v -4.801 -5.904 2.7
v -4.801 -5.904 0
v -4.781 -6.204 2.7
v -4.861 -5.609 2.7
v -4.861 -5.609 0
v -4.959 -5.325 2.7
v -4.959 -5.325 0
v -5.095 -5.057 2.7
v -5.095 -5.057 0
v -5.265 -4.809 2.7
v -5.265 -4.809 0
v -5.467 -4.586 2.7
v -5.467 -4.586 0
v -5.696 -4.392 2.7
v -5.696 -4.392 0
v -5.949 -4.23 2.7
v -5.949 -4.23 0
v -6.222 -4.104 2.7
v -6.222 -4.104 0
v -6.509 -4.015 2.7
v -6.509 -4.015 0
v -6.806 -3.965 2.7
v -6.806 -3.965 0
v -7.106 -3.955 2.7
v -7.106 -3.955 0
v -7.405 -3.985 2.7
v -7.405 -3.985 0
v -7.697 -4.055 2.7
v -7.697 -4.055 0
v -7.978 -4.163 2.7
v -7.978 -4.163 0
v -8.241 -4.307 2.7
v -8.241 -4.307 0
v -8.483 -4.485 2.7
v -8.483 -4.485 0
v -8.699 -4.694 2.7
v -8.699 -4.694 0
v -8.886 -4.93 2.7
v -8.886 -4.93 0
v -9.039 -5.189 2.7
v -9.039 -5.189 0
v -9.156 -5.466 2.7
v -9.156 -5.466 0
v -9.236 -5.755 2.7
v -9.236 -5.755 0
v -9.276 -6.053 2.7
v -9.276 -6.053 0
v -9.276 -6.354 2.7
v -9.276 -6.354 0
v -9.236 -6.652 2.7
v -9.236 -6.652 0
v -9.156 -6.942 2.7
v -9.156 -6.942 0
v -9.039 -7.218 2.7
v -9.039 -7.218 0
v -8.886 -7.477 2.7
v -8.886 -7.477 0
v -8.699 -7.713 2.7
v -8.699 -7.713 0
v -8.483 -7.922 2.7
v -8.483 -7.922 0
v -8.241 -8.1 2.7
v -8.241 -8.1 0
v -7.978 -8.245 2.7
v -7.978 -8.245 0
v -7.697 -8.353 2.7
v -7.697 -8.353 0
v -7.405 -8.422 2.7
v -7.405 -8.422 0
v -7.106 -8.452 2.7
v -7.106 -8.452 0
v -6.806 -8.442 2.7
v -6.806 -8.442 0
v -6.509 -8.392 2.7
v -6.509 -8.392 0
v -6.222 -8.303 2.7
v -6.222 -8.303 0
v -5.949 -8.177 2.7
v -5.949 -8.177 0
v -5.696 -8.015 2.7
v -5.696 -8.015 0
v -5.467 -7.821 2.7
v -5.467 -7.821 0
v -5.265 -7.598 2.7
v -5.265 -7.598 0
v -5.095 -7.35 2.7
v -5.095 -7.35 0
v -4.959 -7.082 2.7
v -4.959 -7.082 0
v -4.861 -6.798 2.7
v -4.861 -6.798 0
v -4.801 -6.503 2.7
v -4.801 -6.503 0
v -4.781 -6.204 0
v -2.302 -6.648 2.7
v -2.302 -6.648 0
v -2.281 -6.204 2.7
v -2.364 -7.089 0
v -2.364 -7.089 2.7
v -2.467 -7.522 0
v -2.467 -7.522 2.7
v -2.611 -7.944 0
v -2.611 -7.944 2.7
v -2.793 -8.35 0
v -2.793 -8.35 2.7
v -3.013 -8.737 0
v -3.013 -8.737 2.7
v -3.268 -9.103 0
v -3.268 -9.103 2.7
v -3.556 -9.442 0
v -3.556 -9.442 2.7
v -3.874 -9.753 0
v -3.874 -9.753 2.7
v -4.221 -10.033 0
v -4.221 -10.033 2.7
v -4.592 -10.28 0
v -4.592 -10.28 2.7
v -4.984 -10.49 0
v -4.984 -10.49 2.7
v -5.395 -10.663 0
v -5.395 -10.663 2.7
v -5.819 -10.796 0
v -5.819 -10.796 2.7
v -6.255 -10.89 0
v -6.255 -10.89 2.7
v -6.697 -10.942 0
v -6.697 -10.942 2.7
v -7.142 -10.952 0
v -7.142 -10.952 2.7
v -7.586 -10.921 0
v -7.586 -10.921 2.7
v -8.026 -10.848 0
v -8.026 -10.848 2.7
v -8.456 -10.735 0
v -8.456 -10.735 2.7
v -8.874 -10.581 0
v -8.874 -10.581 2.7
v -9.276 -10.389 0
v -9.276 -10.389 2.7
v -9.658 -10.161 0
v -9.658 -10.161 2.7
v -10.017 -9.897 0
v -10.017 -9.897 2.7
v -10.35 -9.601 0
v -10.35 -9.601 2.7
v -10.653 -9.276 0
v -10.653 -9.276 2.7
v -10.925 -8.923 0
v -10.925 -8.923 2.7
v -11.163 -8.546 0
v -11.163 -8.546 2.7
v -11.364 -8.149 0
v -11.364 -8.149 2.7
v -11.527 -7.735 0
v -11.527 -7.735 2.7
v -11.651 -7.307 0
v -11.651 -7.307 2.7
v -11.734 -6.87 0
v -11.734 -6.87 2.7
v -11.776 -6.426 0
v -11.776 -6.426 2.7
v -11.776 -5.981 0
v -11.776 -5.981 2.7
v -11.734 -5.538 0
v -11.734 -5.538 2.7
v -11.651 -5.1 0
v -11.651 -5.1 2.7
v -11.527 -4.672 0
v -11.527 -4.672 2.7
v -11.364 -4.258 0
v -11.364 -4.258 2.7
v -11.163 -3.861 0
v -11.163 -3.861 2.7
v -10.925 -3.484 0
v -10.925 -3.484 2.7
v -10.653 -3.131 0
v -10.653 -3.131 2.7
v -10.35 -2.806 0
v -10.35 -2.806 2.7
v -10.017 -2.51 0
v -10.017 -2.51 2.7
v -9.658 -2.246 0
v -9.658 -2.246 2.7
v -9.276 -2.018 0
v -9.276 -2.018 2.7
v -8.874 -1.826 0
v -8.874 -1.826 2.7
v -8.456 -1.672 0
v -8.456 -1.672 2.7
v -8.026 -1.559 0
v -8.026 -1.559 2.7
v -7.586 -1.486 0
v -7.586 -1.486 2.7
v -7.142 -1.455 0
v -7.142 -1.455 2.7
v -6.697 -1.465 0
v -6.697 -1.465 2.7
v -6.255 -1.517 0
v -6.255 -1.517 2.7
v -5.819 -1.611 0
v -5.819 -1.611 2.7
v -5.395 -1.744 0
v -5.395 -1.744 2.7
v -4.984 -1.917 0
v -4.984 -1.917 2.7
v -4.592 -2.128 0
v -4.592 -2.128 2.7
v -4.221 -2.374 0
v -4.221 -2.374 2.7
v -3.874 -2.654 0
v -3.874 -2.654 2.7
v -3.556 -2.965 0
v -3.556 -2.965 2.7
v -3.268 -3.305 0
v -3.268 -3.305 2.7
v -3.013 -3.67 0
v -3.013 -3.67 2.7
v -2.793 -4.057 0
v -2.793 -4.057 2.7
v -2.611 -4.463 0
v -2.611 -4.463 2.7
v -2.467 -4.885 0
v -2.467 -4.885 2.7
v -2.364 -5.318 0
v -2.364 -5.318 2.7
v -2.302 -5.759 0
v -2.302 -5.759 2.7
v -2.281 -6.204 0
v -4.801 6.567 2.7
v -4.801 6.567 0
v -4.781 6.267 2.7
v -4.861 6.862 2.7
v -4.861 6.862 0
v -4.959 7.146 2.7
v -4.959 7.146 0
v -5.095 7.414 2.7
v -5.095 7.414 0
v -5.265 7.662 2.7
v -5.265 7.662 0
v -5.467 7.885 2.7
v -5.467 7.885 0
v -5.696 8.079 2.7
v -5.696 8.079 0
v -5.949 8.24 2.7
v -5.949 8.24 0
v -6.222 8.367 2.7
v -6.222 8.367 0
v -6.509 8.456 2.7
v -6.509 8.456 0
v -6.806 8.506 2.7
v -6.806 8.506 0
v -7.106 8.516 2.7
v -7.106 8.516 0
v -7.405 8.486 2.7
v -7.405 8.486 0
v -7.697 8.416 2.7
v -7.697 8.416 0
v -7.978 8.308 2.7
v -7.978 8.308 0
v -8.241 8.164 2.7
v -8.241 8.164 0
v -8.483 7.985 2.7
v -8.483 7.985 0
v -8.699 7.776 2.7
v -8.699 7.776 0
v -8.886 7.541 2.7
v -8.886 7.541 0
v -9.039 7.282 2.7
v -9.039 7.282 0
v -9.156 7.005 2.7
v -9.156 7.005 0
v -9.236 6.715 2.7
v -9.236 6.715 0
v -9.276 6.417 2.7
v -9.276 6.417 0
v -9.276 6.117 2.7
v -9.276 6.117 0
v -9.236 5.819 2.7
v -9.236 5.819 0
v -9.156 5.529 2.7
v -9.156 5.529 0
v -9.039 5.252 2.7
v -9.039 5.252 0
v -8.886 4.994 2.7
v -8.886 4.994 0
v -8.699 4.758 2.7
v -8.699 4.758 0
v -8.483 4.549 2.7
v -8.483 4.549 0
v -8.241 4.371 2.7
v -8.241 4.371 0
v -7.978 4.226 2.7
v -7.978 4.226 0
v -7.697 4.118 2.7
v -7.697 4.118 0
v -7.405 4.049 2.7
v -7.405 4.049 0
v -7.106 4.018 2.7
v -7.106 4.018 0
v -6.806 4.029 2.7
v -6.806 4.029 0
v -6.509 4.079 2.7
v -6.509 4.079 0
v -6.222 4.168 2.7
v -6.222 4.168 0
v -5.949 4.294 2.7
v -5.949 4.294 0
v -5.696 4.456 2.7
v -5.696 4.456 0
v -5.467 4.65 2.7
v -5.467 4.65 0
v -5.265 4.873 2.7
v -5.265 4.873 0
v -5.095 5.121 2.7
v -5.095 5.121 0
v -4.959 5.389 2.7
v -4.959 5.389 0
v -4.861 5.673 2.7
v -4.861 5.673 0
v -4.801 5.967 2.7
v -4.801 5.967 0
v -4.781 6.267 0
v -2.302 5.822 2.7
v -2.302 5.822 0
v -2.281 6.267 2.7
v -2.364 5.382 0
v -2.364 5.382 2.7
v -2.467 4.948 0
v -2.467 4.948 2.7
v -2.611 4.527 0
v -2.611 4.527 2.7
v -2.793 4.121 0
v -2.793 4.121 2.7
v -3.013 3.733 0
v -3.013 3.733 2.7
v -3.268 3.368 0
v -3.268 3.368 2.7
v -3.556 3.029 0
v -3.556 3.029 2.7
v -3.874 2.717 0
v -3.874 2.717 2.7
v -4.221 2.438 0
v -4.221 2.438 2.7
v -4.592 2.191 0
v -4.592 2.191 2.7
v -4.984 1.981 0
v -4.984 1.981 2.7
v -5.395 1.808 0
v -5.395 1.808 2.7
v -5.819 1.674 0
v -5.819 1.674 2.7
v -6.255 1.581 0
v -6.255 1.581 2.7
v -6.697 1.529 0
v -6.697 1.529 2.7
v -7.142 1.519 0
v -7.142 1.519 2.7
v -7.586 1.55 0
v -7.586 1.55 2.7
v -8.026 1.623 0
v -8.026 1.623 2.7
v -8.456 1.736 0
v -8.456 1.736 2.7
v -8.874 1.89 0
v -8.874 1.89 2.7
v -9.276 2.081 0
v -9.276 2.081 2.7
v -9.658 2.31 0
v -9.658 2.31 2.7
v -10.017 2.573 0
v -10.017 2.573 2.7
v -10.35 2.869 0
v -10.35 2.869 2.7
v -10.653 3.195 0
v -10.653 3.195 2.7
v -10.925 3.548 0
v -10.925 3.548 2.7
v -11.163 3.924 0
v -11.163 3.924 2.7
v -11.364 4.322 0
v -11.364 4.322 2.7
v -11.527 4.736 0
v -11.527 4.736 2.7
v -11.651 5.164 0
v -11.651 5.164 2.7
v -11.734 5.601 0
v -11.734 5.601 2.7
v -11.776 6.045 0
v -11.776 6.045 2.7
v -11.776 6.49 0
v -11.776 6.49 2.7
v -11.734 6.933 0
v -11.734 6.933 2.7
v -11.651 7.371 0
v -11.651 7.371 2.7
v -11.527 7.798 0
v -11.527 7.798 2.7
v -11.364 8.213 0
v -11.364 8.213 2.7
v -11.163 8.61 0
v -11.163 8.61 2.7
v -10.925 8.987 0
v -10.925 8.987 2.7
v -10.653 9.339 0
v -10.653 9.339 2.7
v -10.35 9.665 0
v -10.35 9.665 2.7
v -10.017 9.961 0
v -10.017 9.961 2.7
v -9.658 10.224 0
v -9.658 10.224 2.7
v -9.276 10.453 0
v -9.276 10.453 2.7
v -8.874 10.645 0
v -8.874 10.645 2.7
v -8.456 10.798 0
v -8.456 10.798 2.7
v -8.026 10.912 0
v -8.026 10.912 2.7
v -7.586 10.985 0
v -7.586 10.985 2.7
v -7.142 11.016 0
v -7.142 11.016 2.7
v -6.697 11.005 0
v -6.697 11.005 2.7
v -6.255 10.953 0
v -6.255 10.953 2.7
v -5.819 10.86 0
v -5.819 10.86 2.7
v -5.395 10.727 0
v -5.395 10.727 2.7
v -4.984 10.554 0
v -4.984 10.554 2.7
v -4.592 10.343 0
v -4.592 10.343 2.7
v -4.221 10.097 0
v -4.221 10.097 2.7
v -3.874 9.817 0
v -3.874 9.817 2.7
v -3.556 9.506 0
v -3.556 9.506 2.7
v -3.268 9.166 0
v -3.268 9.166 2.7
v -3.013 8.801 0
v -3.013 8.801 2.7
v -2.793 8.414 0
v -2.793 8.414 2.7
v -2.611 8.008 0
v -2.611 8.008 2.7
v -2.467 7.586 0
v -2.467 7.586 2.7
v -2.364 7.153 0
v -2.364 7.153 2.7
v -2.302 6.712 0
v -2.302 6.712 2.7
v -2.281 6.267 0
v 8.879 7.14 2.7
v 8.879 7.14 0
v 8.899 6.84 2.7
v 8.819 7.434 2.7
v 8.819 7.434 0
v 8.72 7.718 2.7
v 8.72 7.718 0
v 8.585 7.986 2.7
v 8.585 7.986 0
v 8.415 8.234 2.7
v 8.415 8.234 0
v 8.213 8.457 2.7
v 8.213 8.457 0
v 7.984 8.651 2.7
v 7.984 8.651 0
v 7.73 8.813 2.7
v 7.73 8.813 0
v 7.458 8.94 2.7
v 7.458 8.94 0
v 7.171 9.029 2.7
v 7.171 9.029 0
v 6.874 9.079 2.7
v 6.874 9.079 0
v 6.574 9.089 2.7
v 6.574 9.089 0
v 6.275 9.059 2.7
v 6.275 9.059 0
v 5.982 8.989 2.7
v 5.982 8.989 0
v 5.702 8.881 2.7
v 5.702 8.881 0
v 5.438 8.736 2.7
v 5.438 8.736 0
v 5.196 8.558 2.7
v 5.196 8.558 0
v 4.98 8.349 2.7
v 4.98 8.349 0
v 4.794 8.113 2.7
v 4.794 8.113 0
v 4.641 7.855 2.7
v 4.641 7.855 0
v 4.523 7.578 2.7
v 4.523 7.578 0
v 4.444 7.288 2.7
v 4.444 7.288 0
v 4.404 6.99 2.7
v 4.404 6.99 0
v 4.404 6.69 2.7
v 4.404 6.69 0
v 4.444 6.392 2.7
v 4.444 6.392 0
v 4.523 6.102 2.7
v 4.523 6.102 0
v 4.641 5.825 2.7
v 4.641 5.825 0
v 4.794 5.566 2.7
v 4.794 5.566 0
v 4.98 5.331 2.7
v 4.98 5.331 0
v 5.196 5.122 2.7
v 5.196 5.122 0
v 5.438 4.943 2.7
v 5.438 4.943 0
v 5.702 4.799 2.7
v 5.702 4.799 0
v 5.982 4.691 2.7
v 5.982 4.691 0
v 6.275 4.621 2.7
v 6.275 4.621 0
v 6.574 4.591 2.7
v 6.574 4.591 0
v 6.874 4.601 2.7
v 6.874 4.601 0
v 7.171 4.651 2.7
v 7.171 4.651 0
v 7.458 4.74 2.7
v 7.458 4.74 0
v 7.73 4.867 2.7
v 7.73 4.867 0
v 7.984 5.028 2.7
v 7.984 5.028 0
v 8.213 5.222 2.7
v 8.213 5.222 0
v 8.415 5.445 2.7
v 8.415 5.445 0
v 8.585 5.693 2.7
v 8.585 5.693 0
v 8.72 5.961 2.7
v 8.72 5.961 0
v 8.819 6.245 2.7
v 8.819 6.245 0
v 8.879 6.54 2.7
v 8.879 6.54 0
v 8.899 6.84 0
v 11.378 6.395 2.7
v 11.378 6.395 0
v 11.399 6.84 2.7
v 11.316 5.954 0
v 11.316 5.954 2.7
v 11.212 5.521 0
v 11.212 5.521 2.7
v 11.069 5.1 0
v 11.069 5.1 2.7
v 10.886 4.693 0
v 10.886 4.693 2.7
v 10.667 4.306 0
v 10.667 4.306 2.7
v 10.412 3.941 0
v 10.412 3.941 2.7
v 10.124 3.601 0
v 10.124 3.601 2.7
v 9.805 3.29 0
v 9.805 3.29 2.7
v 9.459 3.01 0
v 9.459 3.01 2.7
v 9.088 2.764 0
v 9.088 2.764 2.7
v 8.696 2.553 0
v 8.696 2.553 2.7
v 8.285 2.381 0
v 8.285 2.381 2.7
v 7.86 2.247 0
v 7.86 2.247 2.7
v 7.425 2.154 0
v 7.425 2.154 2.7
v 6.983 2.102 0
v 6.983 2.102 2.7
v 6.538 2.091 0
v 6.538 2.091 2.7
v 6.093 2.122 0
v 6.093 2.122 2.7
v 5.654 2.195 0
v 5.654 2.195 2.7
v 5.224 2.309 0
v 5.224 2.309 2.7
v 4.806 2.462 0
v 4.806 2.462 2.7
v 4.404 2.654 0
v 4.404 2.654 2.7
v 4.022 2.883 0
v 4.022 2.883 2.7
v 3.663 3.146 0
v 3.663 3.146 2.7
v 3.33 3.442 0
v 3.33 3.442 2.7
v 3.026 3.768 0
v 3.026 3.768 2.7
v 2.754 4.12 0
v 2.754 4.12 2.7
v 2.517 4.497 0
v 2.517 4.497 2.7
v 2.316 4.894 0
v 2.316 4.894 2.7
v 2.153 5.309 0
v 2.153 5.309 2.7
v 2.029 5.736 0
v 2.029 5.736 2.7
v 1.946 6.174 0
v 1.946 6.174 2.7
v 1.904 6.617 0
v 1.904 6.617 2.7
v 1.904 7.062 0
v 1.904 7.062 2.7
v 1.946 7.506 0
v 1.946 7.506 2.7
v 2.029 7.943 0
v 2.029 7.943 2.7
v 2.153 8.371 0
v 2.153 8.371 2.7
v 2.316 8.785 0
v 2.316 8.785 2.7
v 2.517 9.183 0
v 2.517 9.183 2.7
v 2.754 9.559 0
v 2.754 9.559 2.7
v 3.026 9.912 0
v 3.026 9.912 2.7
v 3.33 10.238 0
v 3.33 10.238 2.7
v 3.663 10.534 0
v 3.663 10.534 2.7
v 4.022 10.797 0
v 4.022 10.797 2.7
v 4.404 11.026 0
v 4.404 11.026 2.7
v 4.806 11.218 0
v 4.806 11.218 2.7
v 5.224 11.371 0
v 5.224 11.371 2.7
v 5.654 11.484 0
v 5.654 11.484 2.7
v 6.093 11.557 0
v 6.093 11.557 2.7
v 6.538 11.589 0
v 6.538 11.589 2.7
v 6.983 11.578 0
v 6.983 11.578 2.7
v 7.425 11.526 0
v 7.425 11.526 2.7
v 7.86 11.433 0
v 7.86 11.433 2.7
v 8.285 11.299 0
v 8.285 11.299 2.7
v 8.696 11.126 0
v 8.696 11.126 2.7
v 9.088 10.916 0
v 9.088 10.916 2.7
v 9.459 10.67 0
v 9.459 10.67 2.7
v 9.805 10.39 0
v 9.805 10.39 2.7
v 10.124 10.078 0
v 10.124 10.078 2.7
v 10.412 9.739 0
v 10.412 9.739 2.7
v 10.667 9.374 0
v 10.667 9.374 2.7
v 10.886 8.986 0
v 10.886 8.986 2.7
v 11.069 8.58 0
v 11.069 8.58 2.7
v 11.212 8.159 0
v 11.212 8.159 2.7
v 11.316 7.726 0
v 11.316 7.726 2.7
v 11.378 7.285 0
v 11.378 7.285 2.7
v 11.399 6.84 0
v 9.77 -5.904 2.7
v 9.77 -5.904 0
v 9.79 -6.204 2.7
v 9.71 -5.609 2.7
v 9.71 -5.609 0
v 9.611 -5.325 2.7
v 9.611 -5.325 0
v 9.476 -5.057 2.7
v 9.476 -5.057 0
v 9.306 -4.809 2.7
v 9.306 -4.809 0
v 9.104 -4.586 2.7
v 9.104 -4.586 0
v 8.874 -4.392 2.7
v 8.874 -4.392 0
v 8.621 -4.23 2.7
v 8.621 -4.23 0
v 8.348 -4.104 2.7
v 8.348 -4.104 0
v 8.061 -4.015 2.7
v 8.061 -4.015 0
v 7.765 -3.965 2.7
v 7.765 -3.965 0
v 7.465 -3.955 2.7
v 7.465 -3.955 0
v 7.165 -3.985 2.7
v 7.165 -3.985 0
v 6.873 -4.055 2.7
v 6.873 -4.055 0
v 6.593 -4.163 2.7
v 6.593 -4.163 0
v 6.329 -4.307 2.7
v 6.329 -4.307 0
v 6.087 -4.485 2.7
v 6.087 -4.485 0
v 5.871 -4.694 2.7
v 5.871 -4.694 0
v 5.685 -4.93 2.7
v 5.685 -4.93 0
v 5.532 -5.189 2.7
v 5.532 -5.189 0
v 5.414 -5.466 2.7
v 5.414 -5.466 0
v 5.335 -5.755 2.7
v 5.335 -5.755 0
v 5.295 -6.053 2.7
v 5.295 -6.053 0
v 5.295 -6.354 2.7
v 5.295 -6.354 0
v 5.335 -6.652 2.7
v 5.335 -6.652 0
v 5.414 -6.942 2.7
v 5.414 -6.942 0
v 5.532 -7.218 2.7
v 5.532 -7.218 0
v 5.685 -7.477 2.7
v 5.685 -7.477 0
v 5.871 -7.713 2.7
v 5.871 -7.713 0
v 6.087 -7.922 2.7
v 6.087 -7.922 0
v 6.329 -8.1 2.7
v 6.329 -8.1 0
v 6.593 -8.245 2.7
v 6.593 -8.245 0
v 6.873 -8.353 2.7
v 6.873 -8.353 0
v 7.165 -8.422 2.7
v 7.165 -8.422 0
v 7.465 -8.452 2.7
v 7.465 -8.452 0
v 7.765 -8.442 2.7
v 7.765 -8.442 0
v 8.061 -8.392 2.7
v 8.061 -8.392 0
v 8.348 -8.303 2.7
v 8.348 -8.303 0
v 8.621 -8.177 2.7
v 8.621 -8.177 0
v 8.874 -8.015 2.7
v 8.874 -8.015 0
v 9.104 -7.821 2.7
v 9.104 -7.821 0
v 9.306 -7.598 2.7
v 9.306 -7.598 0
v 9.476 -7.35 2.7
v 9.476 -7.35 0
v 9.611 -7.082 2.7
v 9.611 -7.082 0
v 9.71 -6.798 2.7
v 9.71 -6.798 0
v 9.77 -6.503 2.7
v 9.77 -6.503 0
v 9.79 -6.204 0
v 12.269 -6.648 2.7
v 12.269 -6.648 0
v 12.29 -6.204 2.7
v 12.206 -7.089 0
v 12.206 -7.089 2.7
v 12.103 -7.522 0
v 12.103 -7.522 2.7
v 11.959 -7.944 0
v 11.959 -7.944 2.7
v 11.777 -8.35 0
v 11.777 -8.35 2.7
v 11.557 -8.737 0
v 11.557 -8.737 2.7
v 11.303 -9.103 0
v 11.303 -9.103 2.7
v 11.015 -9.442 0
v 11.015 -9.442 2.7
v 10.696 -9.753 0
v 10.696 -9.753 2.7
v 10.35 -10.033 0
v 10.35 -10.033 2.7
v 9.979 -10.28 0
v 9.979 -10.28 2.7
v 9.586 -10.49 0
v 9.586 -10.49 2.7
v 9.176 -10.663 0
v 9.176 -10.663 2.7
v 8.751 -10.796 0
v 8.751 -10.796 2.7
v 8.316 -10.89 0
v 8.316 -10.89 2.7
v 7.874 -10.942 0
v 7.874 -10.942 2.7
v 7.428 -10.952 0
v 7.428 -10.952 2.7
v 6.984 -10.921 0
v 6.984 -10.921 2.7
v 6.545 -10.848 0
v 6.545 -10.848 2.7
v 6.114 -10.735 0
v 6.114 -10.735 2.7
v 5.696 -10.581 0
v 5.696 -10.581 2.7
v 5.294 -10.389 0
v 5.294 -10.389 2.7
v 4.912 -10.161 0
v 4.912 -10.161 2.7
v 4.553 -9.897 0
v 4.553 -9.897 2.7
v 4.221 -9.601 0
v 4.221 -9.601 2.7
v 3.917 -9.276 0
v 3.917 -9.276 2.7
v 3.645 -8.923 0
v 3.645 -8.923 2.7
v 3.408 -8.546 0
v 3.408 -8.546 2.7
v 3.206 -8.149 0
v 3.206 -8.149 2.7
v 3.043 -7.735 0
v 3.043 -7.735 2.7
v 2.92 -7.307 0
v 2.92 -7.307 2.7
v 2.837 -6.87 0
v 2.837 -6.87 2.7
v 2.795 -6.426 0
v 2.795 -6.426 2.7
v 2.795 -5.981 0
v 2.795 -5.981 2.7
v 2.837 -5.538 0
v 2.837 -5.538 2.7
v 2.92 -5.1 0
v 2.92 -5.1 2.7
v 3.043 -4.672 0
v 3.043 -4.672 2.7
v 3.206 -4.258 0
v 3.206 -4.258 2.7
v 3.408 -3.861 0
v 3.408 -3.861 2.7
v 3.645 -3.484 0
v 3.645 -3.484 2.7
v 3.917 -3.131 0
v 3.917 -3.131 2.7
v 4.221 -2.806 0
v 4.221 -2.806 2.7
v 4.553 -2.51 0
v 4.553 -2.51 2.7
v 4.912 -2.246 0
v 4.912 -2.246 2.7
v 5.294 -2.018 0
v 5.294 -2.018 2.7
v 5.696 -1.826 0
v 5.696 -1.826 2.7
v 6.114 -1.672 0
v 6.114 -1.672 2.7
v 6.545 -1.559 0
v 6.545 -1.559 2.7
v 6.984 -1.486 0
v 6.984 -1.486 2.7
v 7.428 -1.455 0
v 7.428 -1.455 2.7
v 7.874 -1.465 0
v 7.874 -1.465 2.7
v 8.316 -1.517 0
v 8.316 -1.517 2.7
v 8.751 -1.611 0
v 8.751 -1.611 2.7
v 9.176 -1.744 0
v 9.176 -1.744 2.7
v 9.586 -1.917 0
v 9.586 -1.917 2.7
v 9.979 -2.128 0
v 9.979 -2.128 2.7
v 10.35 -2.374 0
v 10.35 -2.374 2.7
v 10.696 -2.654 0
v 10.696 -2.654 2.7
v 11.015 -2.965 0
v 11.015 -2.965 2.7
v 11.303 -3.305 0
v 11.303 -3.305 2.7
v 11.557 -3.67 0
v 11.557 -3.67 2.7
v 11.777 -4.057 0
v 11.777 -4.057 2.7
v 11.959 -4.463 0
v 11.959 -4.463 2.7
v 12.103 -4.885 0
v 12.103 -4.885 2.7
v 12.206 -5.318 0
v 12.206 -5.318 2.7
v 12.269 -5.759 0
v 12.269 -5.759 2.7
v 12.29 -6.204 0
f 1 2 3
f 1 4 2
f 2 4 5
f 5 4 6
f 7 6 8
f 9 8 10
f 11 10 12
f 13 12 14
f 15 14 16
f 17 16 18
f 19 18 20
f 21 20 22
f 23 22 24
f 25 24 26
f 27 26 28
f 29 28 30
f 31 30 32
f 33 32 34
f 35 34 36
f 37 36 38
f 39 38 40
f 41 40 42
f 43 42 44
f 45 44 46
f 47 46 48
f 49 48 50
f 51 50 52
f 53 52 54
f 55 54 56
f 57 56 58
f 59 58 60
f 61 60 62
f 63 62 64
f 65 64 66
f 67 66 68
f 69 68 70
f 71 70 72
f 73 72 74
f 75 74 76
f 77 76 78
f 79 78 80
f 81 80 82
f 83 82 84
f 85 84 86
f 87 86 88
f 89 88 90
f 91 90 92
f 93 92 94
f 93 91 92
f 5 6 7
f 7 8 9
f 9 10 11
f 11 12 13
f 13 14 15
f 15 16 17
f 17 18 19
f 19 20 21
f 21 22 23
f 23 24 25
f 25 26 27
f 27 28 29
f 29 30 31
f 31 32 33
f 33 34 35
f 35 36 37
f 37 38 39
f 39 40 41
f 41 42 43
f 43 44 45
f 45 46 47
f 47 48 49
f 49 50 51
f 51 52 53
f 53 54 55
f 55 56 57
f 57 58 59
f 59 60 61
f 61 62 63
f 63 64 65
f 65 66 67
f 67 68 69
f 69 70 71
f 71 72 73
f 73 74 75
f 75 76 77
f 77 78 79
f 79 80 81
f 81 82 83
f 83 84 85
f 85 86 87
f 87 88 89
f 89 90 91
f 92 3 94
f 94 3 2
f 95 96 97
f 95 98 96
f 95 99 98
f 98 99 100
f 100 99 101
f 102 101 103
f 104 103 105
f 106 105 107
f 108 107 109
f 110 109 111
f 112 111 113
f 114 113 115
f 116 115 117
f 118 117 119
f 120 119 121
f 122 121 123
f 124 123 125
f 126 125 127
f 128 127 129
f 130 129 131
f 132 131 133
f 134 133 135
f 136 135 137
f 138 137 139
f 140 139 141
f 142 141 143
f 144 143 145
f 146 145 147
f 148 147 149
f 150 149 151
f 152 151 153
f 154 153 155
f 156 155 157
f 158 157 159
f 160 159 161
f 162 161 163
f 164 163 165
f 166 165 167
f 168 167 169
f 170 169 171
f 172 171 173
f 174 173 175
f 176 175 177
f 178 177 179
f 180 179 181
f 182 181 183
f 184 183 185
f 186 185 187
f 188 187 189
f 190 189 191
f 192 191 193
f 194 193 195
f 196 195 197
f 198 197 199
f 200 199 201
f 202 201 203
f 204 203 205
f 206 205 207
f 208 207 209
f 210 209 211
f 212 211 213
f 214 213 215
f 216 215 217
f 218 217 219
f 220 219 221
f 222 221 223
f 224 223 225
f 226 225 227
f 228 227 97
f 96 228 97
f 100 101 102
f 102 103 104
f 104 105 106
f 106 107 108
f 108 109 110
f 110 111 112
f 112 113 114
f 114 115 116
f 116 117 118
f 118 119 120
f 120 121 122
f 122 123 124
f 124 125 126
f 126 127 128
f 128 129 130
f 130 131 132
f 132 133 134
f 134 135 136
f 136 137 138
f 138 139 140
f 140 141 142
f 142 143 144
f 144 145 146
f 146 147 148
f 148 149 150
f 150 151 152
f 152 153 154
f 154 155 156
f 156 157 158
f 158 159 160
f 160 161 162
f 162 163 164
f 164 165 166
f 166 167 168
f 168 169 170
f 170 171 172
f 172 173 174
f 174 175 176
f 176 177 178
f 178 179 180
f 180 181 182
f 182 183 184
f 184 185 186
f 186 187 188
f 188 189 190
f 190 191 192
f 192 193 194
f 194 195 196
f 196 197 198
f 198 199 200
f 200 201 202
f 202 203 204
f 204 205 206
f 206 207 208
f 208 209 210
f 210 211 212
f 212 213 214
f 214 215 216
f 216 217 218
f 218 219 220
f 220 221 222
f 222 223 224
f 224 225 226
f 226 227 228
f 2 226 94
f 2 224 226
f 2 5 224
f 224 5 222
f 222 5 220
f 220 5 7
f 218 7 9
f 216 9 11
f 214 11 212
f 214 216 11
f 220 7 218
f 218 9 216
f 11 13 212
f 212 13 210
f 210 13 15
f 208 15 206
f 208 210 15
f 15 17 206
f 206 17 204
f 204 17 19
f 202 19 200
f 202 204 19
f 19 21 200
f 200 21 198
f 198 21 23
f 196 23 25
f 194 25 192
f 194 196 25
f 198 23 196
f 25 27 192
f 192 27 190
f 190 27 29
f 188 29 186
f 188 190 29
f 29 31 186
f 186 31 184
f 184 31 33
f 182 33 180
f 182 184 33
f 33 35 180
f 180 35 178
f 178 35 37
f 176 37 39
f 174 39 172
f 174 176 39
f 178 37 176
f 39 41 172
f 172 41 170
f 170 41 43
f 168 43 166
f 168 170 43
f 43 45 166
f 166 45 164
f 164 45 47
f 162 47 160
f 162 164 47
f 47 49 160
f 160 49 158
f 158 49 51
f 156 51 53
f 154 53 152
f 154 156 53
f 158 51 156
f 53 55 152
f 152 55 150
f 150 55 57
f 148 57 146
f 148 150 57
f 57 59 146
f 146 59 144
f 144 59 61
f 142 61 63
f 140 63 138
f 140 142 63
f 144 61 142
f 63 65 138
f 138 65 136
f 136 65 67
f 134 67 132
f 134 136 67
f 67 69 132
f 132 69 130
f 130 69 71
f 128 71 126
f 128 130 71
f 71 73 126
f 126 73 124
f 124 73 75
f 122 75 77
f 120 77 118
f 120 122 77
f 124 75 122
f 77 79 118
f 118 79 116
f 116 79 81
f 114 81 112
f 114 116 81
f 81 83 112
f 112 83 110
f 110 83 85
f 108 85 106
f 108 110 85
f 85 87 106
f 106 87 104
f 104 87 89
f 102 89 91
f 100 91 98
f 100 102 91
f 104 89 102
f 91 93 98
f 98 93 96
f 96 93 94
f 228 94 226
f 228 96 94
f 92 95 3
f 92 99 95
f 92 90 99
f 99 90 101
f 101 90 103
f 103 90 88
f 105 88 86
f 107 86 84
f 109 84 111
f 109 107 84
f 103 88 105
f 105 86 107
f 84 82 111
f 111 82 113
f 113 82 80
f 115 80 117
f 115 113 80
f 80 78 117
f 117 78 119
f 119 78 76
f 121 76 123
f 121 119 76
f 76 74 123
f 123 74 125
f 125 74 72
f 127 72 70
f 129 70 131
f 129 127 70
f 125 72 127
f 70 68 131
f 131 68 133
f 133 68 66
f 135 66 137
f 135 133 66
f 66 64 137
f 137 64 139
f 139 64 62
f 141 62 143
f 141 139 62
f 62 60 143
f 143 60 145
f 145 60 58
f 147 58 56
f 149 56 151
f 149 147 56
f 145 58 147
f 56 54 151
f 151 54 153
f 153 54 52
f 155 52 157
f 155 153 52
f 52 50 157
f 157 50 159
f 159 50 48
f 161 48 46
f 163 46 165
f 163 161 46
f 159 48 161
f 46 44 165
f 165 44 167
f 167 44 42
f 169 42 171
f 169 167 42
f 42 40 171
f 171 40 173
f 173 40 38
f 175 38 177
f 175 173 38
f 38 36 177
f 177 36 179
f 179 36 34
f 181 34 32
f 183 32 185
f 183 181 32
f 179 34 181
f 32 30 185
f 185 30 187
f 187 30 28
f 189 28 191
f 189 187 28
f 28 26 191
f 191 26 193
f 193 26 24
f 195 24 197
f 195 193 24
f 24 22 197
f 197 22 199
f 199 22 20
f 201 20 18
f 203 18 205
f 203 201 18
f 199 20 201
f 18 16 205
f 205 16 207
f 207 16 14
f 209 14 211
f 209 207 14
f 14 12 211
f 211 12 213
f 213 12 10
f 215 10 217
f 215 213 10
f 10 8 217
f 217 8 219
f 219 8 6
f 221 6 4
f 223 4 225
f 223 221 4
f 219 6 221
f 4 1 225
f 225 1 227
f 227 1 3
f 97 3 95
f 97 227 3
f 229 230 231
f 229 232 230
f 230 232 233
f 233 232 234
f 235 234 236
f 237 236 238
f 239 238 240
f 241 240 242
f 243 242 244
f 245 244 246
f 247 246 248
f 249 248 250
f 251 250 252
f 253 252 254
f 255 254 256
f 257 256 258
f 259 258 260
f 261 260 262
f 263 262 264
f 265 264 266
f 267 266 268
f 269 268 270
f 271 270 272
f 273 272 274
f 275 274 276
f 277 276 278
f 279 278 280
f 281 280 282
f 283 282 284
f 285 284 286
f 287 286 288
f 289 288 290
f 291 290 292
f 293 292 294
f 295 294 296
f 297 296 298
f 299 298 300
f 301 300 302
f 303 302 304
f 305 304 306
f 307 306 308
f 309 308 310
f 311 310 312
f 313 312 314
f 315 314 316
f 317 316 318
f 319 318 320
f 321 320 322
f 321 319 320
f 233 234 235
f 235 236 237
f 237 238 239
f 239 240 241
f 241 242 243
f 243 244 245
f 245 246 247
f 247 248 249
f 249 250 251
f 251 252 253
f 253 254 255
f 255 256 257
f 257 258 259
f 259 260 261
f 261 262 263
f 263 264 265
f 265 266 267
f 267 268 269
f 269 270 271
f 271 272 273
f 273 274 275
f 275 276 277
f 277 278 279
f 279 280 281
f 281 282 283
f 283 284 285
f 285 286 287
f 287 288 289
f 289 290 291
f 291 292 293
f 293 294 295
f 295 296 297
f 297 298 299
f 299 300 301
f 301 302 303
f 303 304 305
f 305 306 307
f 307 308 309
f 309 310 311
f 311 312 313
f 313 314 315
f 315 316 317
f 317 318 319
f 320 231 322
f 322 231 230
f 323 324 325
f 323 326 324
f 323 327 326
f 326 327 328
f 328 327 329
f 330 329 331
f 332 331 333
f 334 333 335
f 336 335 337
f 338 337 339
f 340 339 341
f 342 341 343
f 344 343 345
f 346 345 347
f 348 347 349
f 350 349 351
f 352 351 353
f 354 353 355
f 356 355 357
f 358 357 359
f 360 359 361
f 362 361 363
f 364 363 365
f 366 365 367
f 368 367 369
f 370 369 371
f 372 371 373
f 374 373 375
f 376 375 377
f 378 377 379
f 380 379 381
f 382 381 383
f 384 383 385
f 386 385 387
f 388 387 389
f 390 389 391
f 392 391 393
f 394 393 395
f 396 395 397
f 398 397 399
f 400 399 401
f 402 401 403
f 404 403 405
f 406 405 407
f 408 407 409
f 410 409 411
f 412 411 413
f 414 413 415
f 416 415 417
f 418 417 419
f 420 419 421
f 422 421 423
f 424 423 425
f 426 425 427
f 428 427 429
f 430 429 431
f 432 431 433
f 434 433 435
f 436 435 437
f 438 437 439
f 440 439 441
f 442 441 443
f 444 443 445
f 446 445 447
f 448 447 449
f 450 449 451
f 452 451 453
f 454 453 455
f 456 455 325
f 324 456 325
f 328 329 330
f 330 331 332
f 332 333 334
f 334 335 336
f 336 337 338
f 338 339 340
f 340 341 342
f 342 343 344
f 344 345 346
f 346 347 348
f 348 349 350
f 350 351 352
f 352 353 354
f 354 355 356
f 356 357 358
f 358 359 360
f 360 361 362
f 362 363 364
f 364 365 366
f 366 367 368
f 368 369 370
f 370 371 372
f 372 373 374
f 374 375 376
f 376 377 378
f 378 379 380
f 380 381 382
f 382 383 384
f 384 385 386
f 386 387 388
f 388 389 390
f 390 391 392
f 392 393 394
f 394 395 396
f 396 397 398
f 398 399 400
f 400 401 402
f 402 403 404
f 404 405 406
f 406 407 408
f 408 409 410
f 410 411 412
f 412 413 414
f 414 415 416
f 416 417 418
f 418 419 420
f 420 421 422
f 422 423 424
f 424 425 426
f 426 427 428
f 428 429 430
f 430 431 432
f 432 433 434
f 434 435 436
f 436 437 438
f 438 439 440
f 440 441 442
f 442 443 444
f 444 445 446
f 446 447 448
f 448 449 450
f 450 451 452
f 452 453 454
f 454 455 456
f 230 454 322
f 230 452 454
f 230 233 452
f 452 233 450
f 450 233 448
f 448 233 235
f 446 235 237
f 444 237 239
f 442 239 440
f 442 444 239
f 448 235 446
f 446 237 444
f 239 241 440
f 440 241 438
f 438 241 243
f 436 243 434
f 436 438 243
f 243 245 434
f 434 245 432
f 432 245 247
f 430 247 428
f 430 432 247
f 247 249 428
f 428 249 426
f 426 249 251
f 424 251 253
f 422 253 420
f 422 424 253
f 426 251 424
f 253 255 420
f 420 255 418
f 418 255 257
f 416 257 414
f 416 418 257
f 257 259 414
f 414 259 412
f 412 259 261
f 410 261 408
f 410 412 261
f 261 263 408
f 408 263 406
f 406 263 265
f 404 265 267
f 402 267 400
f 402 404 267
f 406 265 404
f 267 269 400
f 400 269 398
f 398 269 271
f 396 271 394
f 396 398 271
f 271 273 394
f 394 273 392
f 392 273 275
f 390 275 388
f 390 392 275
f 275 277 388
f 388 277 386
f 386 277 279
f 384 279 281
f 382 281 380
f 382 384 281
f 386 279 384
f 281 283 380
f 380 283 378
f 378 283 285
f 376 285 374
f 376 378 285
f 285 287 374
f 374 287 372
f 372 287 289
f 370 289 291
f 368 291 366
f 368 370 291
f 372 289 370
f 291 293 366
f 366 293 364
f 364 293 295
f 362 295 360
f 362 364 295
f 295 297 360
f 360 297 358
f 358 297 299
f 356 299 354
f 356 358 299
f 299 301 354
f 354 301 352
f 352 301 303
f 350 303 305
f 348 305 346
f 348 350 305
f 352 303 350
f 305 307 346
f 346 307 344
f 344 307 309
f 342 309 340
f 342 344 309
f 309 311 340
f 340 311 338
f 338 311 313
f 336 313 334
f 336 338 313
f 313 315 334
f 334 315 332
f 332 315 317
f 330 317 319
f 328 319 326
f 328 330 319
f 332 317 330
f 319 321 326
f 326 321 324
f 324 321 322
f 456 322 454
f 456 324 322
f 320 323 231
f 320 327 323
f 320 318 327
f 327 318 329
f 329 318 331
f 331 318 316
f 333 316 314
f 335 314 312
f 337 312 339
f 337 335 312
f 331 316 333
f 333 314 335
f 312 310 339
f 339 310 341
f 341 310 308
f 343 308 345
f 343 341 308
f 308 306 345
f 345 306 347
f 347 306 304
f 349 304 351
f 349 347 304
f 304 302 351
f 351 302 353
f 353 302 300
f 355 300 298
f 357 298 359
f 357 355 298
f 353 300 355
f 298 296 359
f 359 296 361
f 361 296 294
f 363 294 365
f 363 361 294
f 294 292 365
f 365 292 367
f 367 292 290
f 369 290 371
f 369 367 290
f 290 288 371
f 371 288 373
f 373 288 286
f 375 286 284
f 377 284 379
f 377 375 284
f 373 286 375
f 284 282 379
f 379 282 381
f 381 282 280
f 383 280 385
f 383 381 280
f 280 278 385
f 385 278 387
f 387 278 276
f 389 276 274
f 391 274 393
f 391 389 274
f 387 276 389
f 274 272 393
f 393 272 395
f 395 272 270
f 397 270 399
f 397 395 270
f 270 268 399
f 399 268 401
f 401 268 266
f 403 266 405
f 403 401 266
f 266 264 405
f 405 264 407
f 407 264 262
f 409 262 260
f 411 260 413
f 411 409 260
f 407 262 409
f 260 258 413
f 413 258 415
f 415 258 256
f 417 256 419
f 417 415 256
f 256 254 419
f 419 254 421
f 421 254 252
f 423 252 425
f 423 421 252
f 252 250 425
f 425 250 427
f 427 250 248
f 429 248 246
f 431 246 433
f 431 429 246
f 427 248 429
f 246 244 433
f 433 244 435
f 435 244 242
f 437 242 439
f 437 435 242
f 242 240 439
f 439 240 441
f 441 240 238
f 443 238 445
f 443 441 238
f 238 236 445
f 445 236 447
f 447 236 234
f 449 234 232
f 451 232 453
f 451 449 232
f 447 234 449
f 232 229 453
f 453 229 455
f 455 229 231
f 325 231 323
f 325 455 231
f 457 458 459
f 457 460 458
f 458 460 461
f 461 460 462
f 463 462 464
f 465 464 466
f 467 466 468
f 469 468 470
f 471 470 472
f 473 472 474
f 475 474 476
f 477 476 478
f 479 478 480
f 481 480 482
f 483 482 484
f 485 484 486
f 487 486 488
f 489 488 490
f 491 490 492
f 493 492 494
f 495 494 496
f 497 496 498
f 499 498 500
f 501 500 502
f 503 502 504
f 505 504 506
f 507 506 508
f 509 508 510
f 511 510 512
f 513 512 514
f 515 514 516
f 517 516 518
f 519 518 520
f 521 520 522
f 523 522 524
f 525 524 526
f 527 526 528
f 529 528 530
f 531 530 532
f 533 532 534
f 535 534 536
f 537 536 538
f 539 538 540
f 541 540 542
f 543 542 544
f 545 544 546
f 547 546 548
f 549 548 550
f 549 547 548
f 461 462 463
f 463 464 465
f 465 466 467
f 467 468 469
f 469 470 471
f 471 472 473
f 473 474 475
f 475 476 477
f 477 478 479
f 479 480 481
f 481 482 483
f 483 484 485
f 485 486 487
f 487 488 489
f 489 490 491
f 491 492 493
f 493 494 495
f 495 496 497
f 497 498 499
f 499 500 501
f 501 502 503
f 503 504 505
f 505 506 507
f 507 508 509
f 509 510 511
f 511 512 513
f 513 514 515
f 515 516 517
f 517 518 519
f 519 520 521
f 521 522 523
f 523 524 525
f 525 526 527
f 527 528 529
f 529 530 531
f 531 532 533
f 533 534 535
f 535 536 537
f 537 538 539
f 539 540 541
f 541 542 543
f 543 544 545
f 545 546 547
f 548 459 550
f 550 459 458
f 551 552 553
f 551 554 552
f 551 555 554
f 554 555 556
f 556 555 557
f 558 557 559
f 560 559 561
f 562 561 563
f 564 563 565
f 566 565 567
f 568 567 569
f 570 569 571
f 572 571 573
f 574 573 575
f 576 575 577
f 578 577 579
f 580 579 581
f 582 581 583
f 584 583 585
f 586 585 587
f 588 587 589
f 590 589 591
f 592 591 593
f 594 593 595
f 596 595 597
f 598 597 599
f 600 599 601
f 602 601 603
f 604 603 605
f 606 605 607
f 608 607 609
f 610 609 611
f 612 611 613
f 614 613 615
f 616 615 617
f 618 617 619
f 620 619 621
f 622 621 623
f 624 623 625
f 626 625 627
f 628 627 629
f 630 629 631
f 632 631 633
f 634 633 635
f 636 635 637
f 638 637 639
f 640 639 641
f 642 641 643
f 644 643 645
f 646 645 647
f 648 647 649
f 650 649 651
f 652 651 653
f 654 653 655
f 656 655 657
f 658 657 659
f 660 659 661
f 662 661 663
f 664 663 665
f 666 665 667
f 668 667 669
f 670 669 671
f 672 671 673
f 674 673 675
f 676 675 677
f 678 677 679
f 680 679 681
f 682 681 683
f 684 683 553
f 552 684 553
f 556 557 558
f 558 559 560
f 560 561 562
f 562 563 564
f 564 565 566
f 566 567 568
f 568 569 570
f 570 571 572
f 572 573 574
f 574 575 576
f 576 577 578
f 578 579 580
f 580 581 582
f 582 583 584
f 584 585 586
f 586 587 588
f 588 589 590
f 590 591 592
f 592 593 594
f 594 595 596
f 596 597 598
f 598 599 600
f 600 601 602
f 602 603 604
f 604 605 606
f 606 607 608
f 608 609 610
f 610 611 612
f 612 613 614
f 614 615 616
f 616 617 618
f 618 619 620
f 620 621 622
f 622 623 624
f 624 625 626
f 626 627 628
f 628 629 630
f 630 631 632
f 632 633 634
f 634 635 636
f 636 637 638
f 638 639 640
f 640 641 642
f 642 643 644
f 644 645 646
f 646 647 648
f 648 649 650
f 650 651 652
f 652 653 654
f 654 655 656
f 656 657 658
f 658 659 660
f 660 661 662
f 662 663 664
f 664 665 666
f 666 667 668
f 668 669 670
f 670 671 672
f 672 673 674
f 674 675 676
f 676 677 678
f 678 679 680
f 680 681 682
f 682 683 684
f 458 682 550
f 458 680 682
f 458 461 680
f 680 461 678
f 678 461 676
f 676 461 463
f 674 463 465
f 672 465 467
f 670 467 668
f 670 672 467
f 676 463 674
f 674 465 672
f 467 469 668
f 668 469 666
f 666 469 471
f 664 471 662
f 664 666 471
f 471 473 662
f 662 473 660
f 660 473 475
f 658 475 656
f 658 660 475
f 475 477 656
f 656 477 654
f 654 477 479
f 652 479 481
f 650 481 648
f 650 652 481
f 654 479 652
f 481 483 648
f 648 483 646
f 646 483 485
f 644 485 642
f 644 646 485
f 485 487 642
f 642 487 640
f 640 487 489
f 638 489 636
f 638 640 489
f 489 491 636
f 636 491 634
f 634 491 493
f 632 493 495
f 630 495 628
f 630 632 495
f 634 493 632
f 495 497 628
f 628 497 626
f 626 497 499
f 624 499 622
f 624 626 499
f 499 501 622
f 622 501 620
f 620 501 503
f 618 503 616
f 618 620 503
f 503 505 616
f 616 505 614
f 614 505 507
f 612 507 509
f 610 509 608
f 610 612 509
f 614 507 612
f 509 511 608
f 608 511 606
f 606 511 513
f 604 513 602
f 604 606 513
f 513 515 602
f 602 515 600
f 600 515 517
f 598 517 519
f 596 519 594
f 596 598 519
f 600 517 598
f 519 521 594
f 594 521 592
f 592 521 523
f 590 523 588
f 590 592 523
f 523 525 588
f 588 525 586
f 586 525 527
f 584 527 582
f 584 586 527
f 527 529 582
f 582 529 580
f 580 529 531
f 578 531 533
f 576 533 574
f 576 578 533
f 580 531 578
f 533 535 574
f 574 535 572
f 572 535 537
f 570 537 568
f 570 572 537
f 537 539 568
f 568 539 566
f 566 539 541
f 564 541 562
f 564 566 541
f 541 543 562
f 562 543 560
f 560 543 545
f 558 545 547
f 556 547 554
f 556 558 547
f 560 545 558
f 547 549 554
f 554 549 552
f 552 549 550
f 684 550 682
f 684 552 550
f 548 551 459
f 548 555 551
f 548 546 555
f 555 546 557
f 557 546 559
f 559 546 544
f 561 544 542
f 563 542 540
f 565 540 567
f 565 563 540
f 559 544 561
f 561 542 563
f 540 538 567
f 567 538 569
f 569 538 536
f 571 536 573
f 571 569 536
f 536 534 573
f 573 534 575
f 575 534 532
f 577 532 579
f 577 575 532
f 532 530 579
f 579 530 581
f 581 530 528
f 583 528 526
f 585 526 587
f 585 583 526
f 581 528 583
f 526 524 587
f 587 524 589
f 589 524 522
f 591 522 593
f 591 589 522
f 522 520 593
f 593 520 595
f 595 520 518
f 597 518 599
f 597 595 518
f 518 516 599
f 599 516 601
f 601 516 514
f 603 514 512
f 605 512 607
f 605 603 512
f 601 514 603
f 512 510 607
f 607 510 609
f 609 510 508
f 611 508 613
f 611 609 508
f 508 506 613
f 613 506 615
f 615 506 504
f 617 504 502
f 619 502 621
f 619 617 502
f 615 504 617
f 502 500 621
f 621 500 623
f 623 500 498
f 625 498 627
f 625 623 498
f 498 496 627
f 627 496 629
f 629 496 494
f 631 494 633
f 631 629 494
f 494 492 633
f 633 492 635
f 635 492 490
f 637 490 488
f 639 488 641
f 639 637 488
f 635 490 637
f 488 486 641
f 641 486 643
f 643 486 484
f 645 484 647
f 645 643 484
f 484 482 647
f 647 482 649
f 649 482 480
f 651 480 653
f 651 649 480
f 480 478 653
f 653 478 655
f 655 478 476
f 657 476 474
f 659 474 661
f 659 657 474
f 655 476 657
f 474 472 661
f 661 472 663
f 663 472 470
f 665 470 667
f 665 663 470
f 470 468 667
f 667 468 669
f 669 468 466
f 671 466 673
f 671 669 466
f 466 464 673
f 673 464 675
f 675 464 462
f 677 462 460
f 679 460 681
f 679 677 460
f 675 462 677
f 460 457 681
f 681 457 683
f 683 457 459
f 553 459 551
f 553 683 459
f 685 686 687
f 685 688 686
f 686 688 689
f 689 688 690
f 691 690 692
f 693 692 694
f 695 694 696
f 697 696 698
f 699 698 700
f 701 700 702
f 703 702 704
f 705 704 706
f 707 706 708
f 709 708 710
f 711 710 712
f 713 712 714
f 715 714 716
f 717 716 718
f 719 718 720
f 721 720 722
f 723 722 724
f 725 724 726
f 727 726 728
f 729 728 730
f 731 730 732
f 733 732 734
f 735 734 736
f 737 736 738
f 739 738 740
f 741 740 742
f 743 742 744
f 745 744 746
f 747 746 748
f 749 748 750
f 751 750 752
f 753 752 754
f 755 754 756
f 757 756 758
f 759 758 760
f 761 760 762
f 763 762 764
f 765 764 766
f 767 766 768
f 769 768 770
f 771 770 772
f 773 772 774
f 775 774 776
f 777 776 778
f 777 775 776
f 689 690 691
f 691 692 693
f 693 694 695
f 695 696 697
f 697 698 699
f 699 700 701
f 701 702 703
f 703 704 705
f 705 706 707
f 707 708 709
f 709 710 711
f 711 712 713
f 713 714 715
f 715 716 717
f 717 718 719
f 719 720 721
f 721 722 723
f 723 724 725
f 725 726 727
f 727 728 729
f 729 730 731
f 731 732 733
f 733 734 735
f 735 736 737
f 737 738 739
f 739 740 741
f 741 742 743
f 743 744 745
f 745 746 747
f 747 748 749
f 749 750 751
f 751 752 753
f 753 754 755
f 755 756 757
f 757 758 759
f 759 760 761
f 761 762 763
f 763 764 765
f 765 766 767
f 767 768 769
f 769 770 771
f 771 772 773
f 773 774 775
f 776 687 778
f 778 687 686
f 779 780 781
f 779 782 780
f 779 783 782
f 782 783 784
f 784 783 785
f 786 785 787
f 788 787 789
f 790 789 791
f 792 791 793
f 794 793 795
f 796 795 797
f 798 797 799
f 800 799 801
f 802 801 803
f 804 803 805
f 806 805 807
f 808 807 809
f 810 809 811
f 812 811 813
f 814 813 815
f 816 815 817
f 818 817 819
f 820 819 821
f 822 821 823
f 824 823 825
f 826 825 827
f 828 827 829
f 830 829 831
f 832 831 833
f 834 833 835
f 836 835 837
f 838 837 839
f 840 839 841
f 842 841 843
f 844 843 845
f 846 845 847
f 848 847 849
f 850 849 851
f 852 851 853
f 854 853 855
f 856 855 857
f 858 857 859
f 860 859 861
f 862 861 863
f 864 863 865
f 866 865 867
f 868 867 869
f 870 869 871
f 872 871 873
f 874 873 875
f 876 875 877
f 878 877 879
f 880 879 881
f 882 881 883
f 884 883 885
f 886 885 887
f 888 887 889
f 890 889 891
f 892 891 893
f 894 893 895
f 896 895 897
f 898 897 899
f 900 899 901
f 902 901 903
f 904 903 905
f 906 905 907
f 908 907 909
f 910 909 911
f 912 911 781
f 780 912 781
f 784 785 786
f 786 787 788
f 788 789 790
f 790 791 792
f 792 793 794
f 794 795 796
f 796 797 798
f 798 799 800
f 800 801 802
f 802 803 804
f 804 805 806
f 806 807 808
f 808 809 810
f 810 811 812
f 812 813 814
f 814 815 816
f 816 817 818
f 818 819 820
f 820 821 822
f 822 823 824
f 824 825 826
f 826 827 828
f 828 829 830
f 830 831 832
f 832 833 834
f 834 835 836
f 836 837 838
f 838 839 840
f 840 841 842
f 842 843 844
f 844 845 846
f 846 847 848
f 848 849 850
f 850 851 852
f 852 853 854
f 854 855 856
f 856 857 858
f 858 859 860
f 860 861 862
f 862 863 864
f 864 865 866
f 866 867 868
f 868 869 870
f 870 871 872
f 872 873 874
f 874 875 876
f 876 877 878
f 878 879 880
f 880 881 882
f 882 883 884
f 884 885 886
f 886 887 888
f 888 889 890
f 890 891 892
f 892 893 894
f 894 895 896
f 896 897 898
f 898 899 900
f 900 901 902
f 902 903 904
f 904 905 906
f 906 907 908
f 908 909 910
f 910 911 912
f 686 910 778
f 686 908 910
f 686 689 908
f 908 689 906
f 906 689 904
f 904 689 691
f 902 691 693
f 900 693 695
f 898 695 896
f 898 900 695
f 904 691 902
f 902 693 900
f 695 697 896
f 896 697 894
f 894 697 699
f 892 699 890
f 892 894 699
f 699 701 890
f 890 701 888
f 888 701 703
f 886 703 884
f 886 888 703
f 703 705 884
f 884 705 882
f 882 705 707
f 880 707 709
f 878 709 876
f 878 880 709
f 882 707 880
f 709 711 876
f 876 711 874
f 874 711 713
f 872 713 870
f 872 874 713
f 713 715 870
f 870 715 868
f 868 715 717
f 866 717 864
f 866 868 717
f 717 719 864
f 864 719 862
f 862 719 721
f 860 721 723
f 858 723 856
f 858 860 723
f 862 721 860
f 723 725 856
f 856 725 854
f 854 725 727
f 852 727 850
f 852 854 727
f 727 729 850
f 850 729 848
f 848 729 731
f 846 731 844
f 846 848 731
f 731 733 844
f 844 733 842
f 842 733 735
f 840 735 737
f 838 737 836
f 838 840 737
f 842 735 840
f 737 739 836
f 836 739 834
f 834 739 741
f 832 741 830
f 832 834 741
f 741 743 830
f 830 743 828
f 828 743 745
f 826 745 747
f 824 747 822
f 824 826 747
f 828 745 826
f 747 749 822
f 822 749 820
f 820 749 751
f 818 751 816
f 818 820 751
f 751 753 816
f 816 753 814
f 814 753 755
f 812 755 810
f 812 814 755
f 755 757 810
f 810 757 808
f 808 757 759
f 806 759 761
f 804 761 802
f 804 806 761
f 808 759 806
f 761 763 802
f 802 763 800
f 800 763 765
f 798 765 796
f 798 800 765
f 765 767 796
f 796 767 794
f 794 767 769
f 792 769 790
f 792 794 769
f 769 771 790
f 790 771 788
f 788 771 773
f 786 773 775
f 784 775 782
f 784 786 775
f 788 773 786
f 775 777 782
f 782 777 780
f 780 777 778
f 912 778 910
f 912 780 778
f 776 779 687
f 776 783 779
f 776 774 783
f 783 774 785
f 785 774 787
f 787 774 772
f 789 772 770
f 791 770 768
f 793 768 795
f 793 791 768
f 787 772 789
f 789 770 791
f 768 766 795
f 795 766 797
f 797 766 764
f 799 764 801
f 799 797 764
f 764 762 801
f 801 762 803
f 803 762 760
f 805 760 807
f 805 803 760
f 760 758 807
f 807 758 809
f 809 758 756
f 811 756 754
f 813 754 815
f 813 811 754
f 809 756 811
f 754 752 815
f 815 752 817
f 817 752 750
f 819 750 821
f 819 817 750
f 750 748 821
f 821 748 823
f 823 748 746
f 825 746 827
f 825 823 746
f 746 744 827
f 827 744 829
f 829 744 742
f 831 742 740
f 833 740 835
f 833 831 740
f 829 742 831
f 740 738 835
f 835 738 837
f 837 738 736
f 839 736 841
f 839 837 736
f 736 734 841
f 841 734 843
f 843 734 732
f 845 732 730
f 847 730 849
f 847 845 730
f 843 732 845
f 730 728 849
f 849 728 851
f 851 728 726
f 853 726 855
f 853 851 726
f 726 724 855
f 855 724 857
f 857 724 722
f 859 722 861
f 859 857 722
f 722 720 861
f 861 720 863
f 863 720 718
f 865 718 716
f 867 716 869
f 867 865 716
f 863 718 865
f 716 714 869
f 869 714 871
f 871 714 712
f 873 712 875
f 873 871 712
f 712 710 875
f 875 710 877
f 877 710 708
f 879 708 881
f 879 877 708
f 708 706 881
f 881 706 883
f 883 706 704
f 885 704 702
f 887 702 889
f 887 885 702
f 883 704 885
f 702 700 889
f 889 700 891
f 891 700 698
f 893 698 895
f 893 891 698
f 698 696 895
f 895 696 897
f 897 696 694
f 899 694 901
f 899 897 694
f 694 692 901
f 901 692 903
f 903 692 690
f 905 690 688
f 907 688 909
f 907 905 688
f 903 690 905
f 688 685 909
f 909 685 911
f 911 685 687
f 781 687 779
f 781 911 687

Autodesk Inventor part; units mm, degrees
ref_plane "YZ Plane" through (0, 0, 0) normal (1, 0, 0) x (0, 1, 0)
ref_plane "XZ Plane" through (0, 0, 0) normal (0, 1, 0) x (-1, 0, 0)
ref_plane "XY Plane" through (0, 0, 0) normal (0, 0, 1) x (1, 0, 0)
sketch "Sketch1" plane through (0, 0, 0) normal (0, 0, 1) x (1, 0, 0)
  circle A0 centre (-7.0307, 6.2672) radius 2.25
  circle A1 centre (-7.0307, 6.2672) radius 4.75
  circle A2 centre (6.649, 6.8398) radius 2.25
  circle A3 centre (6.649, 6.8398) radius 4.75
  circle A4 centre (-7.0307, -6.2036) radius 2.25
  circle A5 centre (-7.0307, -6.2036) radius 4.75
  circle A6 centre (7.5397, -6.2036) radius 2.25
  circle A7 centre (7.5397, -6.2036) radius 4.75
  point P0 (0, 0)
  dimension "d0" = 4.5
  dimension "d1" = 2.5
  dimension "d2" = 4.5
  dimension "d3" = 2.5
  dimension "d4" = 4.5
  dimension "d5" = 2.5
  dimension "d6" = 4.5
  dimension "d7" = 2.5
extrude "Extrusion1" add sketch "Sketch1" along normal blind 2.7
properties part number "Washers"
